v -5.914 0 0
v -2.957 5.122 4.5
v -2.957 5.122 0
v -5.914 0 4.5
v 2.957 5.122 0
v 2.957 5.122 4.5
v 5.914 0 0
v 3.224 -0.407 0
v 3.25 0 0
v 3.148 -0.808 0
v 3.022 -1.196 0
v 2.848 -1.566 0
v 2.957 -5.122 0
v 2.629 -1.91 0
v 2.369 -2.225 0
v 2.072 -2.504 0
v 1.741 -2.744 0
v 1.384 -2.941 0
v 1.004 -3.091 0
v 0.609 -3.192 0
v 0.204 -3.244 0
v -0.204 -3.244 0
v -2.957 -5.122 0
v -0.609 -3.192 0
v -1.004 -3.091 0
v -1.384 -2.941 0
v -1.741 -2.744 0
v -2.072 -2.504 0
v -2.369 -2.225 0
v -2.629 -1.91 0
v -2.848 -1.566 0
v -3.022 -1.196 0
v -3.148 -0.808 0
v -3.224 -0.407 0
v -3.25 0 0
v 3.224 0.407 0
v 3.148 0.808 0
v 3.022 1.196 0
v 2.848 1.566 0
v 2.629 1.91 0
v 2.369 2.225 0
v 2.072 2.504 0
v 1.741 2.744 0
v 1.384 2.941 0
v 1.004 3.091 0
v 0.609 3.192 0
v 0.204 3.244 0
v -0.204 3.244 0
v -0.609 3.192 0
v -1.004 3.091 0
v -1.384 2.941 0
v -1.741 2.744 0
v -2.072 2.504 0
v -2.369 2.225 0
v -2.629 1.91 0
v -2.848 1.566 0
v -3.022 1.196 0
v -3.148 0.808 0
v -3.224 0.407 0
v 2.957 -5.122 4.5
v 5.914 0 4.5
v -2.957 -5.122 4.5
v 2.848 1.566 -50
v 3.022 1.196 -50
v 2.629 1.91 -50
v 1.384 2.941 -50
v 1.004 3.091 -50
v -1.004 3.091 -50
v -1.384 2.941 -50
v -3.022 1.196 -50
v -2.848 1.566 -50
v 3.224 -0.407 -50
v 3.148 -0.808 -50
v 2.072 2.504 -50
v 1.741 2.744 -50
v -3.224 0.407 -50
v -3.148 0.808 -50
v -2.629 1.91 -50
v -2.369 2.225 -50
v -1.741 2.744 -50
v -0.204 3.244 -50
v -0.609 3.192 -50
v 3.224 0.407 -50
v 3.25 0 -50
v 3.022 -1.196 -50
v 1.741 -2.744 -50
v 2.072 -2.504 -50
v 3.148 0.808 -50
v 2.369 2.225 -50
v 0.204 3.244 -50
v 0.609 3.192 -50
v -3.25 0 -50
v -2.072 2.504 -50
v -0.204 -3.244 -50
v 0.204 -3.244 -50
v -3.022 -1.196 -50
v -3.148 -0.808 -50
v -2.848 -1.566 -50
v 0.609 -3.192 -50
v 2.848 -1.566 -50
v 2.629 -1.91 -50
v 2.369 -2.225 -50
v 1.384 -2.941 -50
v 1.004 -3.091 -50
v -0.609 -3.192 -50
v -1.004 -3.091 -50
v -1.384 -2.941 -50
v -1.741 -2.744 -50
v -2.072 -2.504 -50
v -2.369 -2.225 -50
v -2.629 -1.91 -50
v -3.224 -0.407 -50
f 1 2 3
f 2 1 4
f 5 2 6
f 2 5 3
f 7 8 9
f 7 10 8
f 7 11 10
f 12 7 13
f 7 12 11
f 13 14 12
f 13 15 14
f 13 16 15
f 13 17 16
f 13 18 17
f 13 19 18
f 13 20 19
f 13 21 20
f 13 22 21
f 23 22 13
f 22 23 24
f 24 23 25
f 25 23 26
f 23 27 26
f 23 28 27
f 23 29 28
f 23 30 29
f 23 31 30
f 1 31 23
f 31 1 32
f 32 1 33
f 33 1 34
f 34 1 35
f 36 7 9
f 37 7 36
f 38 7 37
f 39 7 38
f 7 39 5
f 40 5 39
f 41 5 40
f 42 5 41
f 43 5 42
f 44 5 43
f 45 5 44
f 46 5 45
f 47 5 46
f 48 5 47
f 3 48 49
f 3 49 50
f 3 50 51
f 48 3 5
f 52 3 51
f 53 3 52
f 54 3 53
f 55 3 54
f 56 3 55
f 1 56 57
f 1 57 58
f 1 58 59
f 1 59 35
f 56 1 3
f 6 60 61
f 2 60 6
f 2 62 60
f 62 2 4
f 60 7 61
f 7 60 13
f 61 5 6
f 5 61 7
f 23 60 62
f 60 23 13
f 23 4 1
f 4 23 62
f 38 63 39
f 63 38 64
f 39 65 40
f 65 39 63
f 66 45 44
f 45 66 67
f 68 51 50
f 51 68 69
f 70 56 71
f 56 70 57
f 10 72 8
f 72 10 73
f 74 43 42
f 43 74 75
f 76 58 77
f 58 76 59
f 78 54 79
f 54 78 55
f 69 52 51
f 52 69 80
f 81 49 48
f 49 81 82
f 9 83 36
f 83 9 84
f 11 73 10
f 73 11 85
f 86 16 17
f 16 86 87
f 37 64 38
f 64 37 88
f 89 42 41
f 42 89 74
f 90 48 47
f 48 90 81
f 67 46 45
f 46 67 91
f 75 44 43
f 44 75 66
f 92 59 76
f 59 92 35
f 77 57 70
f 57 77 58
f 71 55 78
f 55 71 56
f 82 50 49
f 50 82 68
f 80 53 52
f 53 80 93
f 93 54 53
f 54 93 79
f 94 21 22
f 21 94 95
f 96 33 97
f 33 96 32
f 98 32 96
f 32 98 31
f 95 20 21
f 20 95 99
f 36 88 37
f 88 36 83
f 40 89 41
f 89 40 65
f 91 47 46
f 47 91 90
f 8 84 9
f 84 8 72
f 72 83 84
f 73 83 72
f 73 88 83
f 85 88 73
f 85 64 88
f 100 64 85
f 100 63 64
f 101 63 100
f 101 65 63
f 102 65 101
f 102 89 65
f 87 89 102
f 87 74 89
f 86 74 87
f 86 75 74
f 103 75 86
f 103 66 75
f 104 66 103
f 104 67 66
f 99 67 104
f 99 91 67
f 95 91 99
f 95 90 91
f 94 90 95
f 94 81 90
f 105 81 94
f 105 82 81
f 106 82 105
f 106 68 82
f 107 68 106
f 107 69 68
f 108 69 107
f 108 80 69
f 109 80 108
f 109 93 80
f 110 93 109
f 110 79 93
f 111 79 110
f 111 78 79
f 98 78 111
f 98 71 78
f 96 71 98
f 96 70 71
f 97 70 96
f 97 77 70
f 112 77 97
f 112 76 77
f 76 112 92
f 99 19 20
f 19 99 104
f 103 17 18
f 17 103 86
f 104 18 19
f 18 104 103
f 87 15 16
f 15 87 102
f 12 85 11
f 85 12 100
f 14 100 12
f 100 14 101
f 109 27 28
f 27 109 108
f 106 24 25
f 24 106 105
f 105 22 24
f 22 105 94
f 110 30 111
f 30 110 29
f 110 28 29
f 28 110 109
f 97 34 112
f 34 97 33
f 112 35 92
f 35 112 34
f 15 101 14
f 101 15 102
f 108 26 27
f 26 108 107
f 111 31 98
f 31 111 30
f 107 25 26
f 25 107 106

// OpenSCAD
$fn = 50;


difference() {
	union() {
		translate(v = [0, 0, 0]) {
			rotate(a = [0, 0, 0]) {
				translate(v = [0, 0, 0]) {
					rotate(a = [0, 0, 0]) {
						linear_extrude(height = 4.5000000000) {
							polygon(points = [[5.9142500000, 0.0000000000], [2.9571250000, 5.1218907443], [-2.9571250000, 5.1218907443], [-5.9142500000, 0.0000000000], [-2.9571250000, -5.1218907443], [2.9571250000, -5.1218907443]]);
						}
					}
				}
			}
		}
		translate(v = [0, 0, -50]) {
			rotate(a = [0, 0, 0]) {
				cylinder(h = 50, r = 3.2500000000);
			}
		}
	}
	union();
}
